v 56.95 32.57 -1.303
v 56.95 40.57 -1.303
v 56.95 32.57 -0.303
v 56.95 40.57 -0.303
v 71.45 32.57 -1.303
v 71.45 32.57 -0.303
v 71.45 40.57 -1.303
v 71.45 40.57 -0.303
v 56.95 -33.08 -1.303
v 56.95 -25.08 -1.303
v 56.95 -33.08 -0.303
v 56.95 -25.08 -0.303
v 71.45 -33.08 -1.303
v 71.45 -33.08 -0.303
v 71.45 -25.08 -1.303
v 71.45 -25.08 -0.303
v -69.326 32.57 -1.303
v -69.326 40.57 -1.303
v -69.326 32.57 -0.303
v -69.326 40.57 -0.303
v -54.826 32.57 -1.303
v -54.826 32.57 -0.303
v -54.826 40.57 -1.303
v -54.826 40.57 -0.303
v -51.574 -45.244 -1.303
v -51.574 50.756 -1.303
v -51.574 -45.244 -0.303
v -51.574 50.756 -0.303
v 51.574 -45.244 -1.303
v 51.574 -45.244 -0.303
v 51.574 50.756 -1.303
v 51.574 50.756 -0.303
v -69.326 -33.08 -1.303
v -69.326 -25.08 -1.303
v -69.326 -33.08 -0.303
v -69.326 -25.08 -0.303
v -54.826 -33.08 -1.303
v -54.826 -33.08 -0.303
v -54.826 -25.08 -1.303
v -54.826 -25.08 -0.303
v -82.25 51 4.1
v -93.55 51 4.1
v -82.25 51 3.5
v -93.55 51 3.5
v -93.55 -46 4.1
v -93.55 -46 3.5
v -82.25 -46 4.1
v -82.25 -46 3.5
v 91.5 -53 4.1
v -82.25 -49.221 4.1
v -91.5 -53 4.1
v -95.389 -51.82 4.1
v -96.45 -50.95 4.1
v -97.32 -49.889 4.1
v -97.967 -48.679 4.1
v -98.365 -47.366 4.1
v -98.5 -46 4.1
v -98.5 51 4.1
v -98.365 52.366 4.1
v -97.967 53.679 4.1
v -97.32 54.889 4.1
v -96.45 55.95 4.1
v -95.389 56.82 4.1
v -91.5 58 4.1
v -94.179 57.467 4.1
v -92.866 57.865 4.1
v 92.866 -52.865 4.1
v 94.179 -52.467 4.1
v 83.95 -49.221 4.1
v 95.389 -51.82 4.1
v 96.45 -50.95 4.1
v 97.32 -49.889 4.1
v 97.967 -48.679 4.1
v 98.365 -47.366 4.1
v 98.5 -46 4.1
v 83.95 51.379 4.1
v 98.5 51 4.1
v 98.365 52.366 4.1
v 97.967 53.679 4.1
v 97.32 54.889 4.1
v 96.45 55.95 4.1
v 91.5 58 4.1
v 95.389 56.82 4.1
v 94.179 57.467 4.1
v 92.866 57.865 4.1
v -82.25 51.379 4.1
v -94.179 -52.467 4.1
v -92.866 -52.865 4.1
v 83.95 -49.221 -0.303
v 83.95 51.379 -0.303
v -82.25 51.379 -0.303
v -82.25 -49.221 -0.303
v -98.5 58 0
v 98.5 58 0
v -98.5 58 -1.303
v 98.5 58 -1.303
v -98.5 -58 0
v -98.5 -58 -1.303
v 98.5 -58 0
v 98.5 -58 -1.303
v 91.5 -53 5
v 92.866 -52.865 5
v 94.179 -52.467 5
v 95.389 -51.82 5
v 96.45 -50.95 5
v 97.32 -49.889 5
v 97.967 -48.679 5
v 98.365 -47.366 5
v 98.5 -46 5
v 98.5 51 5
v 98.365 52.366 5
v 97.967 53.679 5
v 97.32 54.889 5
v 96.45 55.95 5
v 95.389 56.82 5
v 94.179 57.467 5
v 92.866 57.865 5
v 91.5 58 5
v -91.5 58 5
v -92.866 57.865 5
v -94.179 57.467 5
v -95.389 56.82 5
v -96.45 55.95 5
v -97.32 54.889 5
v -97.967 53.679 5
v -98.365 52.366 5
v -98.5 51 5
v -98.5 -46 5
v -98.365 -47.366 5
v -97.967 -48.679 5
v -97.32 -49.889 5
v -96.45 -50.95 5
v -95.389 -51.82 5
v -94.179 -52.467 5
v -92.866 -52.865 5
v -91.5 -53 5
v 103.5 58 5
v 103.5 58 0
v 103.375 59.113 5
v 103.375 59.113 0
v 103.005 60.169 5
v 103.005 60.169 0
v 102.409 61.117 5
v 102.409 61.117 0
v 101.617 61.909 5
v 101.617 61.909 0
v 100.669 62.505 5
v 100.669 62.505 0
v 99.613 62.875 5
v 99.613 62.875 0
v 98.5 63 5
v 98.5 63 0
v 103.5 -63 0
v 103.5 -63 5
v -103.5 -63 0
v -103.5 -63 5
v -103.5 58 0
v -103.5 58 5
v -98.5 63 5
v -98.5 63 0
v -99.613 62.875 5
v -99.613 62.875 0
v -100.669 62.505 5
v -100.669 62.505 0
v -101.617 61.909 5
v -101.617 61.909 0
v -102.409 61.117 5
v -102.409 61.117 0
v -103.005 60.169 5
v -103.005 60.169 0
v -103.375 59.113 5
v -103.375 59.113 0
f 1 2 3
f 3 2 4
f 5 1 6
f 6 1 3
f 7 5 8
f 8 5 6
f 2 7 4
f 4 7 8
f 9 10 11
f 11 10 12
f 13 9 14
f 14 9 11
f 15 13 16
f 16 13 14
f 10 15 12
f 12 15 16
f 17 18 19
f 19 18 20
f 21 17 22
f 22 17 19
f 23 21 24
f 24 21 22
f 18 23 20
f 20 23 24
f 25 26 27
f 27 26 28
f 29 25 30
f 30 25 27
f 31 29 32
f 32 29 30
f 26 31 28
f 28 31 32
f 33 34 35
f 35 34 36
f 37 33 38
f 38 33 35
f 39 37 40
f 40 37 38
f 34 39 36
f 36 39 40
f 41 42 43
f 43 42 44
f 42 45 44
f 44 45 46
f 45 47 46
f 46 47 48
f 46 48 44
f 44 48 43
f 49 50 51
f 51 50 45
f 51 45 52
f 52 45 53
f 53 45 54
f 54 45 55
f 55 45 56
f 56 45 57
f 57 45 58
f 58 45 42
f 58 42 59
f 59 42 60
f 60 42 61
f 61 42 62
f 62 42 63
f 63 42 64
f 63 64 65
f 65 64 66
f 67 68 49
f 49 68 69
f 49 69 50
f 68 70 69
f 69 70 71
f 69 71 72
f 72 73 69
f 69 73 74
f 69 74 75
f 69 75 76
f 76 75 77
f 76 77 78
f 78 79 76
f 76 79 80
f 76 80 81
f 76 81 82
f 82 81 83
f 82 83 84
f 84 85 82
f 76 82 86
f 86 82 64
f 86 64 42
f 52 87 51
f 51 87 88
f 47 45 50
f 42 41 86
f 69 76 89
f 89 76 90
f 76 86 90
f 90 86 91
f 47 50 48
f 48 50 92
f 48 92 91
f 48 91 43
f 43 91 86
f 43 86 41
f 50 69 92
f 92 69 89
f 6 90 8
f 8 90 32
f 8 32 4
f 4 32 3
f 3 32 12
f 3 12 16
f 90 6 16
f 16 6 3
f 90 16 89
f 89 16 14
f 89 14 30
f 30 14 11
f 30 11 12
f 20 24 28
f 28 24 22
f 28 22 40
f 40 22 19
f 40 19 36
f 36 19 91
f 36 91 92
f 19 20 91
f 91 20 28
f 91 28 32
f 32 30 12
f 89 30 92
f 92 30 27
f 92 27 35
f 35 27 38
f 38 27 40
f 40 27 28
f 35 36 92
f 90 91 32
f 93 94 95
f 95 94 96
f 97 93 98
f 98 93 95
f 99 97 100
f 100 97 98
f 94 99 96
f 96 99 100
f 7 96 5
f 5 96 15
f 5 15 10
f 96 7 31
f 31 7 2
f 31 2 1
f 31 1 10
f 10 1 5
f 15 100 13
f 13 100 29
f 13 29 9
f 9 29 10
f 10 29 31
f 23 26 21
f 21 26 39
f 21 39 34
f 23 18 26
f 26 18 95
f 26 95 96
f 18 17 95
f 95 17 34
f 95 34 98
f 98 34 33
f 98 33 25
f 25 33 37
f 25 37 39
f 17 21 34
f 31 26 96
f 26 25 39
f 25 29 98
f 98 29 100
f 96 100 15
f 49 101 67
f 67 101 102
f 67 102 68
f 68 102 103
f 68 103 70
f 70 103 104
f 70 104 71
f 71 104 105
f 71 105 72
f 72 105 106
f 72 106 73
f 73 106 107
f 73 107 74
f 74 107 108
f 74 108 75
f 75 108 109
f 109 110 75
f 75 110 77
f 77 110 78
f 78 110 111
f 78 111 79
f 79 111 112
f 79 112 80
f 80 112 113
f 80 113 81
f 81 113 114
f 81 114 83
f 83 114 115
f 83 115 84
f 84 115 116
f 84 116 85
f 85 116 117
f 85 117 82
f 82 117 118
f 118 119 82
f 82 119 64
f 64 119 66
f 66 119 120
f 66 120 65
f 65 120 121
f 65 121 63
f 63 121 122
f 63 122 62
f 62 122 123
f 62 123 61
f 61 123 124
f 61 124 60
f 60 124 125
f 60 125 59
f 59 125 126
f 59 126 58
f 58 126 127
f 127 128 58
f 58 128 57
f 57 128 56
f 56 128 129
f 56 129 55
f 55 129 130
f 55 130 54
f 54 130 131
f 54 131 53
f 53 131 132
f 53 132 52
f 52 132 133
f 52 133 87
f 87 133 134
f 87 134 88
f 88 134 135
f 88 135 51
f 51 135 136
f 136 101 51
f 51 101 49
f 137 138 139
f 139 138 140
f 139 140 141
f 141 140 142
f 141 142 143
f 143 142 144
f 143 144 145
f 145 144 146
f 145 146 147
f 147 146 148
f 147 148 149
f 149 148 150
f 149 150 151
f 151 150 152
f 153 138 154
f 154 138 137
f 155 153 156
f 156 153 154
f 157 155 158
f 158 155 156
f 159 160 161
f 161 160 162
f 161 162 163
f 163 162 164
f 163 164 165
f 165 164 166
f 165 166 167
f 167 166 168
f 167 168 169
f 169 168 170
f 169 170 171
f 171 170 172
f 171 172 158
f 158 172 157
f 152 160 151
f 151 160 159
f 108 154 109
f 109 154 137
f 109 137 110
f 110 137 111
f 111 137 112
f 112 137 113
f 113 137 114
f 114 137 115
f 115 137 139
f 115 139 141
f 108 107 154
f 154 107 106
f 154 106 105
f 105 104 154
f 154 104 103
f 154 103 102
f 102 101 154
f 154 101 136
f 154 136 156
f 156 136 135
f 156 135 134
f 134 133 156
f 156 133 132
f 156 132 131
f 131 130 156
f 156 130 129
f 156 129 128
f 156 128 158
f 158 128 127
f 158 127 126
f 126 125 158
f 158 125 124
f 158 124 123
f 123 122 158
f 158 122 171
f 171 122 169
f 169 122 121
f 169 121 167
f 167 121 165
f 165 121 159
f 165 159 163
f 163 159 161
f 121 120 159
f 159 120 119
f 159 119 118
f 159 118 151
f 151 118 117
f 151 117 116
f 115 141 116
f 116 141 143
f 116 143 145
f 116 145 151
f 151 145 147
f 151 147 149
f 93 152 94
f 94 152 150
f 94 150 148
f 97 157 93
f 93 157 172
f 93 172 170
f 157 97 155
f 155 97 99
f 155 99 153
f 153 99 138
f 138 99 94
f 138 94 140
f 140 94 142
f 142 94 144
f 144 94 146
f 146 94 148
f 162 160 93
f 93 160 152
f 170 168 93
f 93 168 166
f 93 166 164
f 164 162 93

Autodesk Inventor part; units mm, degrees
ref_plane "YZ Plane" through (0, 0, 0) normal (1, 0, 0) x (0, 1, 0)
ref_plane "XZ Plane" through (0, 0, 0) normal (0, 1, 0) x (-1, 0, 0)
ref_plane "XY Plane" through (0, 0, 0) normal (0, 0, 1) x (1, 0, 0)
sketch "스케치1" plane through (0, 0, 0) normal (0, 0, 1) x (1, 0, 0)
  line L0 (-103.5, -63) -> (-103.5, 58) projected
  line L1 (-98.5, -63) -> (-103.5, -63) projected
  line L2 (-98.5, 58) -> (-98.5, -63) projected
  line L3 (98.5, 58) -> (-98.5, 58) projected
  line L4 (98.5, -63) -> (98.5, 58) projected
  line L5 (103.5, -63) -> (98.5, -63) projected
  line L6 (103.5, 58) -> (103.5, -63) projected
  arc A0 (103.5, 58) -> (98.5, 63) centre (98.5, 58) ccw projected
  line L7 (-98.5, 63) -> (98.5, 63) projected
  arc A1 (-98.5, 63) -> (-103.5, 58) centre (-98.5, 58) ccw projected
  line L8 (-98.5, -63) -> (98.5, -63)
  point P0 (0, 0)
extrude "돌출1" add sketch "스케치1" along normal blind 5
sketch "스케치2" plane through (0, 0, 5) normal (0, 0, 1) x (1, 0, 0)
  line L0 (-91.5, 58) -> (91.5, 58)
  line L1 (98.5, 51) -> (98.5, -46)
  line L2 (91.5, -53) -> (-91.5, -53)
  line L3 (-98.5, -46) -> (-98.5, 51)
  line L4 (98.5, 63) -> (-98.5, 63) projected
  arc A0 (-98.5, 63) -> (-103.5, 58) centre (-98.5, 58) ccw projected
  line L5 (-103.5, 58) -> (-103.5, -63) projected
  line L6 (-103.5, -63) -> (103.5, -63) projected
  line L7 (103.5, -63) -> (103.5, 58) projected
  arc A1 (103.5, 58) -> (98.5, 63) centre (98.5, 58) ccw projected
  arc A2 (-91.5, 58) -> (-98.5, 51) centre (-91.5, 51) ccw
  arc A3 (-98.5, -46) -> (-91.5, -53) centre (-91.5, -46) ccw
  arc A4 (91.5, -53) -> (98.5, -46) centre (91.5, -46) ccw
  arc A5 (98.5, 51) -> (91.5, 58) centre (91.5, 51) ccw
  point P0 (0, 0)
  point P1 (98.5, -53)
  point P2 (98.5, 58)
  point P3 (-98.5, -53)
  point P4 (0, 58)
  dimension "d2" = 197
  dimension "d3" = 111
  dimension "d4" = 207
  dimension "d5" = 126
  dimension "d6" = 103.5
  dimension "d7" = 5
  dimension "d8" = 7
extrude "돌출2" cut sketch "스케치2" against normal blind 0.9 contours L0 A5 L1 A4 L2 A3 L3 A2
sketch "스케치3" plane through (0, 0, 4.1) normal (0, 0, 1) x (1, 0, 0)
  line L0 (-82.25, 51.379) -> (83.95, 51.379)
  line L1 (83.95, 51.379) -> (83.95, -49.221)
  line L2 (83.95, -49.221) -> (-82.25, -49.221)
  line L3 (-82.25, -49.221) -> (-82.25, 51.379)
  line L4 (91.5, -53) -> (-91.5, -53) projected
  arc A0 (91.5, -53) -> (98.5, -46) centre (91.5, -46) ccw projected
  line L5 (98.5, 51) -> (98.5, -46) projected
  arc A1 (98.5, 51) -> (91.5, 58) centre (91.5, 51) ccw projected
  line L6 (-91.5, 58) -> (91.5, 58) projected
  arc A2 (-91.5, 58) -> (-98.5, 51) centre (-91.5, 51) ccw projected
  line L7 (-98.5, -46) -> (-98.5, 51) projected
  arc A3 (-98.5, -46) -> (-91.5, -53) centre (-91.5, -46) ccw projected
  point P0 (0, 0)
  dimension "d11" = 166.2
  dimension "d12" = 100.6
  dimension "d13" = 14.55
  dimension "d14" = 6.621
sketch "스케치4" plane through (0, 0, 0) normal (0, 0, -1) x (-1, 0, 0)
  line L0 (-98.5, 63) -> (98.5, 63) projected
  arc A0 (-98.5, 63) -> (-103.5, 58) centre (-98.5, 58) ccw projected
  line L1 (-103.5, -63) -> (-103.5, 58) projected
  line L2 (103.5, -63) -> (-103.5, -63) projected
  line L3 (103.5, 58) -> (103.5, -63) projected
  arc A1 (103.5, 58) -> (98.5, 63) centre (98.5, 58) ccw projected
  line L4 (98.5, 58) -> (-98.5, 58)
  line L5 (-98.5, 58) -> (-98.5, -58)
  line L6 (-98.5, -58) -> (98.5, -58)
  line L7 (98.5, -58) -> (98.5, 58)
  point P0 (0, 0)
  dimension "d17" = 5
extrude "돌출4" add sketch "스케치4" along normal blind 1.303 contours L7 L6 L5 L4
extrude "돌출5" cut sketch "스케치3" against normal blind 4.403 contours L0 L1 L2 L3
sketch "스케치6" plane through (0, 0, 4.1) normal (0, 0, 1) x (1, 0, 0)
  line L0 (-93.55, 51) -> (-82.246, 51)
  line L1 (-82.246, 51) -> (-82.246, -46)
  line L2 (-82.246, -46) -> (-93.55, -46)
  line L3 (-93.55, -46) -> (-93.55, 51)
  line L4 (83.95, 51.379) -> (83.95, -49.221) projected
  line L5 (83.95, -49.221) -> (-82.25, -49.221) projected
  line L6 (-82.25, -49.221) -> (-82.25, 51.379) projected
  line L7 (-82.25, 51.379) -> (83.95, 51.379) projected
  line L8 (91.5, -53) -> (-91.5, -53) projected
  arc A0 (91.5, -53) -> (98.5, -46) centre (91.5, -46) ccw projected
  line L9 (98.5, 51) -> (98.5, -46) projected
  arc A1 (98.5, 51) -> (91.5, 58) centre (91.5, 51) ccw projected
  line L10 (-91.5, 58) -> (91.5, 58) projected
  arc A2 (-91.5, 58) -> (-98.5, 51) centre (-91.5, 51) ccw projected
  line L11 (-98.5, -46) -> (-98.5, 51) projected
  arc A3 (-98.5, -46) -> (-91.5, -53) centre (-91.5, -46) ccw projected
  point P0 (0, 0)
  point P1 (-82.25, -46)
  point P2 (-82.25, 51)
  dimension "d22" = 11.304
  dimension "d23" = 97
  dimension "d24" = 4.95
  dimension "d25" = 7
extrude "돌출6" cut sketch "스케치6" against normal blind 0.6 contours L0 L6 L2 L3
sketch "스케치8" plane through (0, 0, -0.303) normal (0, 0, 1) x (1, 0, 0)
  line L0 (-51.5745, 50.756) -> (51.5745, 50.756)
  line L1 (51.5745, 50.756) -> (51.5745, -45.244)
  line L2 (51.5745, -45.244) -> (-51.5745, -45.244)
  line L3 (-51.5745, -45.244) -> (-51.5745, 50.756)
  line L4 (83.95, -49.221) -> (-82.25, -49.221) projected
  line L5 (83.95, 51.379) -> (83.95, -49.221) projected
  line L6 (-82.25, 51.379) -> (83.95, 51.379) projected
  line L7 (-82.25, -49.221) -> (-82.25, 51.379) projected
  arc A0 (91.5, -53) -> (98.5, -46) centre (91.5, -46) ccw projected
  line L8 (91.5, -53) -> (-91.5, -53) projected
  arc A1 (-98.5, -46) -> (-91.5, -53) centre (-91.5, -46) ccw projected
  line L9 (-98.5, -46) -> (-98.5, 51) projected
  arc A2 (-91.5, 58) -> (-98.5, 51) centre (-91.5, 51) ccw projected
  line L10 (-91.5, 58) -> (91.5, 58) projected
  arc A3 (98.5, 51) -> (91.5, 58) centre (91.5, 51) ccw projected
  line L11 (98.5, 51) -> (98.5, -46) projected
  line L12 (98.5, 63) -> (-98.5, 63) projected
  arc A4 (-98.5, 63) -> (-103.5, 58) centre (-98.5, 58) ccw projected
  line L13 (-103.5, 58) -> (-103.5, -63) projected
  line L14 (-103.5, -63) -> (103.5, -63) projected
  line L15 (103.5, -63) -> (103.5, 58) projected
  arc A5 (103.5, 58) -> (98.5, 63) centre (98.5, 58) ccw projected
  line L16 (-69.326, 40.57) -> (-54.826, 40.57)
  line L17 (-54.826, 40.57) -> (-54.826, 32.57)
  line L18 (-54.826, 32.57) -> (-69.326, 32.57)
  line L19 (-69.326, 32.57) -> (-69.326, 40.57)
  line L20 (-69.326, -25.08) -> (-54.826, -25.08)
  line L21 (-54.826, -25.08) -> (-54.826, -33.08)
  line L22 (-54.826, -33.08) -> (-69.326, -33.08)
  line L23 (-69.326, -33.08) -> (-69.326, -25.08)
  line L24 (56.95, 40.57) -> (71.45, 40.57)
  line L25 (71.45, 40.57) -> (71.45, 32.57)
  line L26 (71.45, 32.57) -> (56.95, 32.57)
  line L27 (56.95, 32.57) -> (56.95, 40.57)
  line L28 (56.95, -25.08) -> (71.45, -25.08)
  line L29 (71.45, -25.08) -> (71.45, -33.08)
  line L30 (71.45, -33.08) -> (56.95, -33.08)
  line L31 (56.95, -33.08) -> (56.95, -25.08)
  line L32 (91.5, -53) -> (-91.5, -53) projected
  arc A6 (91.5, -53) -> (98.5, -46) centre (91.5, -46) ccw projected
  line L33 (98.5, 51) -> (98.5, -46) projected
  arc A7 (98.5, 51) -> (91.5, 58) centre (91.5, 51) ccw projected
  line L34 (-91.5, 58) -> (91.5, 58) projected
  arc A8 (-91.5, 58) -> (-98.5, 51) centre (-91.5, 51) ccw projected
  line L35 (-98.5, -46) -> (-98.5, 51) projected
  arc A9 (-98.5, -46) -> (-91.5, -53) centre (-91.5, -46) ccw projected
  line L36 (-82.25, -46) -> (-93.55, -46) projected
  line L37 (-93.55, -46) -> (-93.55, 51) projected
  line L38 (-93.55, 51) -> (-82.25, 51) projected
  line L39 (-82.25, 51) -> (-82.25, 51.379) projected
  line L40 (-82.25, 51.379) -> (83.95, 51.379) projected
  line L41 (83.95, 51.379) -> (83.95, -49.221) projected
  line L42 (83.95, -49.221) -> (-82.25, -49.221) projected
  line L43 (-82.25, -49.221) -> (-82.25, -46) projected
  point P0 (0, 0)
  point P1 (0, 50.756)
  point P2 (-62.076, -25.069)
  point P3 (-61.0015, 31.581)
  point P4 (-51.5745, 2.756)
  point P5 (50.5, 51.379)
  point P6 (-50.5, 51.379)
  point P7 (-54.826, -29.08)
  point P8 (-54.826, 36.57)
  point P9 (64.2, 40.57)
  point P10 (-62.076, 40.57)
  point P11 (-69.326, -29.08)
  point P12 (-69.326, 36.57)
  dimension "d41" = 96
  dimension "d46" = 197
  dimension "d47" = 98.5
  dimension "d49" = 28.825
  dimension "d53" = 14.5
  dimension "d54" = 8
  dimension "d55" = 14.5
  dimension "d56" = 8
  dimension "d57" = 14.5
  dimension "d58" = 8
  dimension "d59" = 14.5
  dimension "d60" = 8
  dimension "d61" = 27.05
  dimension "d62" = 17.43
  dimension "d63" = 126.276
  dimension "d64" = 65.65
extrude "돌출8" cut sketch "스케치8" against normal blind 2.5 contours L0 L1 L2 L3 | L16 L17 L18 L19 | L20 L21 L22 L23 | L24 L25 L26 L27 | L28 L29 L30 L31
properties part number "AASTRC Top case cover_3D 인쇄"
